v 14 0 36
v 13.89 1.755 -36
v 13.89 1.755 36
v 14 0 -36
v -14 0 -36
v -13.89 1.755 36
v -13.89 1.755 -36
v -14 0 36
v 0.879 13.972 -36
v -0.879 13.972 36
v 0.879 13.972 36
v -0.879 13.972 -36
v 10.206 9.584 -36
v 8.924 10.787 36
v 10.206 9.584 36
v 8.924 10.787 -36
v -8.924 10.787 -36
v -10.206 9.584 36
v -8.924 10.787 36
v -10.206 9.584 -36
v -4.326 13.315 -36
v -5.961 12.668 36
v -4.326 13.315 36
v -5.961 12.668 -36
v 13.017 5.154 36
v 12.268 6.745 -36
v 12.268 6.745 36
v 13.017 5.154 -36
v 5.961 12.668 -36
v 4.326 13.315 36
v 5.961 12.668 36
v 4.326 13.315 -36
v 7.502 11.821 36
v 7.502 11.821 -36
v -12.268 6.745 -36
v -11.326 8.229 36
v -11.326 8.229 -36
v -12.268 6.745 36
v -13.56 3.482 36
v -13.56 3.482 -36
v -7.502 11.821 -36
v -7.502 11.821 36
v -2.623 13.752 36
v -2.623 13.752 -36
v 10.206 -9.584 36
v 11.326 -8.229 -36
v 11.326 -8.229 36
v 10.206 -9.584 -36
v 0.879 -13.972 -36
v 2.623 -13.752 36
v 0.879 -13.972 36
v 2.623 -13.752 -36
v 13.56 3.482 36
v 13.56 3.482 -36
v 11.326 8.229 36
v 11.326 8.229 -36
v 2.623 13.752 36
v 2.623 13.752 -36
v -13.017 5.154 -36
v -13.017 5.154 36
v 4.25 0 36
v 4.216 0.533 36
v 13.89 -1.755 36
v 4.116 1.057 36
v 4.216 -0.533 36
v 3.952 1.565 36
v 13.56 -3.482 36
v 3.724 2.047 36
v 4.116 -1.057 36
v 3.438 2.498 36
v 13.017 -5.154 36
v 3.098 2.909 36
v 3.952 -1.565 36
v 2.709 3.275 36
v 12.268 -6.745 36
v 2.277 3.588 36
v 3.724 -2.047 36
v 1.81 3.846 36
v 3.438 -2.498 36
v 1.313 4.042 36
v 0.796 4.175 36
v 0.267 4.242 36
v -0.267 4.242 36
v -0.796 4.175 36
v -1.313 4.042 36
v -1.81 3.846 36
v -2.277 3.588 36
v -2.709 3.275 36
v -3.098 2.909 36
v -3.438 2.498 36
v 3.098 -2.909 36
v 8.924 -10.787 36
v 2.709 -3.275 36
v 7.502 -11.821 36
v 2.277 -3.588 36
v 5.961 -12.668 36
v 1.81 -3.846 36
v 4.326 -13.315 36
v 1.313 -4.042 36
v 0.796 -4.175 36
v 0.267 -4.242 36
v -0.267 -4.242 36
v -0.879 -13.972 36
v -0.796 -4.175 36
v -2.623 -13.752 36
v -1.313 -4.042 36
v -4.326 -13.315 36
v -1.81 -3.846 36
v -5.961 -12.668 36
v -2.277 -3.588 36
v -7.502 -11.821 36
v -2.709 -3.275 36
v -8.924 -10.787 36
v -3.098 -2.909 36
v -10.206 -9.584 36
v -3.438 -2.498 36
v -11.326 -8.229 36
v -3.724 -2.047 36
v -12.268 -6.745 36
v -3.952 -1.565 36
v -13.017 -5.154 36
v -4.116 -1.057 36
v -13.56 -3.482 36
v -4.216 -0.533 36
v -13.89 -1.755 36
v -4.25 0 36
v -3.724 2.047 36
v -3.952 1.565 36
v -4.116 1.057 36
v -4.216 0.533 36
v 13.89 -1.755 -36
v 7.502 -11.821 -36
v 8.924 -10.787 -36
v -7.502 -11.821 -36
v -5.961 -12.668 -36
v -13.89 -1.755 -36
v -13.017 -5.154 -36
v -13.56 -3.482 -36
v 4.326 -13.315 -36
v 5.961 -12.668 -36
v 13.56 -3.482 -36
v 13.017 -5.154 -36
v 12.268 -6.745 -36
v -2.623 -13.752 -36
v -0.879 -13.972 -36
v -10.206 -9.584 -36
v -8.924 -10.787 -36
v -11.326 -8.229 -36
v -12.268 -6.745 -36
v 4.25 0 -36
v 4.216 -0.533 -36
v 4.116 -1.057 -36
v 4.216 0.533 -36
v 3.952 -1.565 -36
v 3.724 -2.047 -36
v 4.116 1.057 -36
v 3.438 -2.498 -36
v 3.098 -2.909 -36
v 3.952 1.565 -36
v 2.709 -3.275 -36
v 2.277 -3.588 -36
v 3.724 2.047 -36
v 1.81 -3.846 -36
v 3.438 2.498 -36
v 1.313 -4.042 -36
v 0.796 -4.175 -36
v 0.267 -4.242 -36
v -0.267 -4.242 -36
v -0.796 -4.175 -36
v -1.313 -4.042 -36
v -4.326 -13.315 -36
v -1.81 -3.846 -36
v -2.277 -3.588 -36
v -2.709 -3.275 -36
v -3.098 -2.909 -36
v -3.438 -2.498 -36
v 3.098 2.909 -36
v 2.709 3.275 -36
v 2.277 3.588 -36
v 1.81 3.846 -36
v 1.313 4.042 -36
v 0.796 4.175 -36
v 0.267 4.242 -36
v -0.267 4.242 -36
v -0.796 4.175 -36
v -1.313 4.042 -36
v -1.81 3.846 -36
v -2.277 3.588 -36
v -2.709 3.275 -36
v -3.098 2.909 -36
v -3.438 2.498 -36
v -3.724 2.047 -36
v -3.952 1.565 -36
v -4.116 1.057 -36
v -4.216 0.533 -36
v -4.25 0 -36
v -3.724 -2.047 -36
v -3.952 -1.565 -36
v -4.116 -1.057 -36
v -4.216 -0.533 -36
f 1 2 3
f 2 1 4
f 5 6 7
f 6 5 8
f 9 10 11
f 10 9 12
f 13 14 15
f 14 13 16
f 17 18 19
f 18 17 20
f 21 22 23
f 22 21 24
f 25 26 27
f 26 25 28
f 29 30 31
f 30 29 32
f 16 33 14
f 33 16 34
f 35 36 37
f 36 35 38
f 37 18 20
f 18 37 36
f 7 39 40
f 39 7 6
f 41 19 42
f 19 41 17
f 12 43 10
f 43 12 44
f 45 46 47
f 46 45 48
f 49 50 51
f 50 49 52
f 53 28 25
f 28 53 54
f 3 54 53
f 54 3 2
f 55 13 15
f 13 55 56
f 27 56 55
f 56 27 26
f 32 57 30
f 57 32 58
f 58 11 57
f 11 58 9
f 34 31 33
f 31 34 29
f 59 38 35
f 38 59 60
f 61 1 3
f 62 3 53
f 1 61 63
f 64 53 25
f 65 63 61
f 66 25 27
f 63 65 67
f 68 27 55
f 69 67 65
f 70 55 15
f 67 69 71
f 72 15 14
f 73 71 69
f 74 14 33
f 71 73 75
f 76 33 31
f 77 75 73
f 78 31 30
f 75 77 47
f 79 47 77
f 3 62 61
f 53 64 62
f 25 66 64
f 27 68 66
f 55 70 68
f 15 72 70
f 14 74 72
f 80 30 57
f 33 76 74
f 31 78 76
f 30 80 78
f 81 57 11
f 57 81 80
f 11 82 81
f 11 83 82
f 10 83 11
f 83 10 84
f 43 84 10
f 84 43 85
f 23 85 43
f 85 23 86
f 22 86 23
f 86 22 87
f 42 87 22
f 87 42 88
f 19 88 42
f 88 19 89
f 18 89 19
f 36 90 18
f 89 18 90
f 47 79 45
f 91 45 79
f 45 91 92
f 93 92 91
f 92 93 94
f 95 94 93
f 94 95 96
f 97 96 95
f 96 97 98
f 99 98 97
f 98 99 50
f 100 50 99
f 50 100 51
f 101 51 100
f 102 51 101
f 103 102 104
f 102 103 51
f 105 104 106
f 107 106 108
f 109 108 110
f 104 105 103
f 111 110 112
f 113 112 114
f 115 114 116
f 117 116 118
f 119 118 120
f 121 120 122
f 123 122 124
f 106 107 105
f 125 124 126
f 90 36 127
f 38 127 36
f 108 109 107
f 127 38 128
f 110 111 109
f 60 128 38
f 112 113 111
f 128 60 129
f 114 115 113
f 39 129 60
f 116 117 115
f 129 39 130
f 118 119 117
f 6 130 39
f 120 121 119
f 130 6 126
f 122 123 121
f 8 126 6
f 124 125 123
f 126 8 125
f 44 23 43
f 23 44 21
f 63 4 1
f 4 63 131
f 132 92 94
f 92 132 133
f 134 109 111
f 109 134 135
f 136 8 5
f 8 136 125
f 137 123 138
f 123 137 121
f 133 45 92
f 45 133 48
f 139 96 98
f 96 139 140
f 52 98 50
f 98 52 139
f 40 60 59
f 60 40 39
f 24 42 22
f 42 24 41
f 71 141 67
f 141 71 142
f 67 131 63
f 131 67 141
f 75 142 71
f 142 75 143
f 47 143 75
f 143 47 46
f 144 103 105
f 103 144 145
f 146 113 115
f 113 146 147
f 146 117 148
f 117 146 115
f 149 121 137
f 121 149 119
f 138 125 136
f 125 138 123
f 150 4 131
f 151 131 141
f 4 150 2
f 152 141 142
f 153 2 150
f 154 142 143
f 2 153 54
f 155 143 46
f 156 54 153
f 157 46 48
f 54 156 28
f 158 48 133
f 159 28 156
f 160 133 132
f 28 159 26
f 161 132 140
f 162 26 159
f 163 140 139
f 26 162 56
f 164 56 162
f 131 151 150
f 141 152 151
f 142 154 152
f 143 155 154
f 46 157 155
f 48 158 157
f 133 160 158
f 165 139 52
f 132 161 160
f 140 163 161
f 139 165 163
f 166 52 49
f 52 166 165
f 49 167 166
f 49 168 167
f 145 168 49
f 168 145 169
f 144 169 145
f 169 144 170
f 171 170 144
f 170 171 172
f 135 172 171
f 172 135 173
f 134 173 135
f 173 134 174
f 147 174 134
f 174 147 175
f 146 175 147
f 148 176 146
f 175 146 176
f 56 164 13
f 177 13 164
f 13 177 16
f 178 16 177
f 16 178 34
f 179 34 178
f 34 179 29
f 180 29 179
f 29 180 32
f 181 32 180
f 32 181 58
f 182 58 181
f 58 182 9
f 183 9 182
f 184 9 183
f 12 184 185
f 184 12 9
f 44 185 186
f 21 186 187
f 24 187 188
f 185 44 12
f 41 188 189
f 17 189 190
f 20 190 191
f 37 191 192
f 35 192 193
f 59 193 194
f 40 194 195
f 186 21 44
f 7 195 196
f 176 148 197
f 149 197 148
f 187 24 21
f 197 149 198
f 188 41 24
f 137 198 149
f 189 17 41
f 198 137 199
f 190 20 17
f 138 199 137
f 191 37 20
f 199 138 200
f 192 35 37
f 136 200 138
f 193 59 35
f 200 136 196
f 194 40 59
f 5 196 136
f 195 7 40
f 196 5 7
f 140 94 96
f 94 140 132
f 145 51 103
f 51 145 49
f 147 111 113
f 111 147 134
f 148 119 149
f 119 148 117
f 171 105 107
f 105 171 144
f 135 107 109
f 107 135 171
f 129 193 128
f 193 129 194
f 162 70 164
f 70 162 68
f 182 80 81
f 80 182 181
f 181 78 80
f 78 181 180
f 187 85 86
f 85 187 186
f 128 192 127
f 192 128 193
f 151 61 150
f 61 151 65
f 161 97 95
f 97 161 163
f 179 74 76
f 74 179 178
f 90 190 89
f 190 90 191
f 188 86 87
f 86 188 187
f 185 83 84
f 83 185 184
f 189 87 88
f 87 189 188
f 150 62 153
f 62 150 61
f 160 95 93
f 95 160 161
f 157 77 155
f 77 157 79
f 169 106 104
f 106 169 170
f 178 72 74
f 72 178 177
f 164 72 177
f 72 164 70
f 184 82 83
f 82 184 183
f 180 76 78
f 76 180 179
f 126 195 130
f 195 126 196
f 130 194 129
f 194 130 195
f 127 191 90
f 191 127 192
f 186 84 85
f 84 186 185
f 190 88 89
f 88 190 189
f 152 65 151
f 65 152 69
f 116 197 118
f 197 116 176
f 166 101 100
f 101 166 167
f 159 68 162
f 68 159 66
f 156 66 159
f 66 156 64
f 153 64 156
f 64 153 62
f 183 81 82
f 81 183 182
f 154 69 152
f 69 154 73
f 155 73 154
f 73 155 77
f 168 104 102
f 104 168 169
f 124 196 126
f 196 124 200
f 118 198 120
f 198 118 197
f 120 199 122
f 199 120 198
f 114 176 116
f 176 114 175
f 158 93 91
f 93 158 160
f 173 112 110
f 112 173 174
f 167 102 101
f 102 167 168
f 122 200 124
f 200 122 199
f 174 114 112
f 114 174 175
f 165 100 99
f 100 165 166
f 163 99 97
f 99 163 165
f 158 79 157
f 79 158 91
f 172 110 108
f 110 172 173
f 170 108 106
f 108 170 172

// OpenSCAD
$fn = 50;


difference() {
	union() {
		translate(v = [0, 0, -36.0000000000]) {
			cylinder(h = 72, r = 14.0000000000);
		}
	}
	union() {
		translate(v = [0, 0, -100.0000000000]) {
			cylinder(h = 200, r = 4.2500000000);
		}
	}
}
